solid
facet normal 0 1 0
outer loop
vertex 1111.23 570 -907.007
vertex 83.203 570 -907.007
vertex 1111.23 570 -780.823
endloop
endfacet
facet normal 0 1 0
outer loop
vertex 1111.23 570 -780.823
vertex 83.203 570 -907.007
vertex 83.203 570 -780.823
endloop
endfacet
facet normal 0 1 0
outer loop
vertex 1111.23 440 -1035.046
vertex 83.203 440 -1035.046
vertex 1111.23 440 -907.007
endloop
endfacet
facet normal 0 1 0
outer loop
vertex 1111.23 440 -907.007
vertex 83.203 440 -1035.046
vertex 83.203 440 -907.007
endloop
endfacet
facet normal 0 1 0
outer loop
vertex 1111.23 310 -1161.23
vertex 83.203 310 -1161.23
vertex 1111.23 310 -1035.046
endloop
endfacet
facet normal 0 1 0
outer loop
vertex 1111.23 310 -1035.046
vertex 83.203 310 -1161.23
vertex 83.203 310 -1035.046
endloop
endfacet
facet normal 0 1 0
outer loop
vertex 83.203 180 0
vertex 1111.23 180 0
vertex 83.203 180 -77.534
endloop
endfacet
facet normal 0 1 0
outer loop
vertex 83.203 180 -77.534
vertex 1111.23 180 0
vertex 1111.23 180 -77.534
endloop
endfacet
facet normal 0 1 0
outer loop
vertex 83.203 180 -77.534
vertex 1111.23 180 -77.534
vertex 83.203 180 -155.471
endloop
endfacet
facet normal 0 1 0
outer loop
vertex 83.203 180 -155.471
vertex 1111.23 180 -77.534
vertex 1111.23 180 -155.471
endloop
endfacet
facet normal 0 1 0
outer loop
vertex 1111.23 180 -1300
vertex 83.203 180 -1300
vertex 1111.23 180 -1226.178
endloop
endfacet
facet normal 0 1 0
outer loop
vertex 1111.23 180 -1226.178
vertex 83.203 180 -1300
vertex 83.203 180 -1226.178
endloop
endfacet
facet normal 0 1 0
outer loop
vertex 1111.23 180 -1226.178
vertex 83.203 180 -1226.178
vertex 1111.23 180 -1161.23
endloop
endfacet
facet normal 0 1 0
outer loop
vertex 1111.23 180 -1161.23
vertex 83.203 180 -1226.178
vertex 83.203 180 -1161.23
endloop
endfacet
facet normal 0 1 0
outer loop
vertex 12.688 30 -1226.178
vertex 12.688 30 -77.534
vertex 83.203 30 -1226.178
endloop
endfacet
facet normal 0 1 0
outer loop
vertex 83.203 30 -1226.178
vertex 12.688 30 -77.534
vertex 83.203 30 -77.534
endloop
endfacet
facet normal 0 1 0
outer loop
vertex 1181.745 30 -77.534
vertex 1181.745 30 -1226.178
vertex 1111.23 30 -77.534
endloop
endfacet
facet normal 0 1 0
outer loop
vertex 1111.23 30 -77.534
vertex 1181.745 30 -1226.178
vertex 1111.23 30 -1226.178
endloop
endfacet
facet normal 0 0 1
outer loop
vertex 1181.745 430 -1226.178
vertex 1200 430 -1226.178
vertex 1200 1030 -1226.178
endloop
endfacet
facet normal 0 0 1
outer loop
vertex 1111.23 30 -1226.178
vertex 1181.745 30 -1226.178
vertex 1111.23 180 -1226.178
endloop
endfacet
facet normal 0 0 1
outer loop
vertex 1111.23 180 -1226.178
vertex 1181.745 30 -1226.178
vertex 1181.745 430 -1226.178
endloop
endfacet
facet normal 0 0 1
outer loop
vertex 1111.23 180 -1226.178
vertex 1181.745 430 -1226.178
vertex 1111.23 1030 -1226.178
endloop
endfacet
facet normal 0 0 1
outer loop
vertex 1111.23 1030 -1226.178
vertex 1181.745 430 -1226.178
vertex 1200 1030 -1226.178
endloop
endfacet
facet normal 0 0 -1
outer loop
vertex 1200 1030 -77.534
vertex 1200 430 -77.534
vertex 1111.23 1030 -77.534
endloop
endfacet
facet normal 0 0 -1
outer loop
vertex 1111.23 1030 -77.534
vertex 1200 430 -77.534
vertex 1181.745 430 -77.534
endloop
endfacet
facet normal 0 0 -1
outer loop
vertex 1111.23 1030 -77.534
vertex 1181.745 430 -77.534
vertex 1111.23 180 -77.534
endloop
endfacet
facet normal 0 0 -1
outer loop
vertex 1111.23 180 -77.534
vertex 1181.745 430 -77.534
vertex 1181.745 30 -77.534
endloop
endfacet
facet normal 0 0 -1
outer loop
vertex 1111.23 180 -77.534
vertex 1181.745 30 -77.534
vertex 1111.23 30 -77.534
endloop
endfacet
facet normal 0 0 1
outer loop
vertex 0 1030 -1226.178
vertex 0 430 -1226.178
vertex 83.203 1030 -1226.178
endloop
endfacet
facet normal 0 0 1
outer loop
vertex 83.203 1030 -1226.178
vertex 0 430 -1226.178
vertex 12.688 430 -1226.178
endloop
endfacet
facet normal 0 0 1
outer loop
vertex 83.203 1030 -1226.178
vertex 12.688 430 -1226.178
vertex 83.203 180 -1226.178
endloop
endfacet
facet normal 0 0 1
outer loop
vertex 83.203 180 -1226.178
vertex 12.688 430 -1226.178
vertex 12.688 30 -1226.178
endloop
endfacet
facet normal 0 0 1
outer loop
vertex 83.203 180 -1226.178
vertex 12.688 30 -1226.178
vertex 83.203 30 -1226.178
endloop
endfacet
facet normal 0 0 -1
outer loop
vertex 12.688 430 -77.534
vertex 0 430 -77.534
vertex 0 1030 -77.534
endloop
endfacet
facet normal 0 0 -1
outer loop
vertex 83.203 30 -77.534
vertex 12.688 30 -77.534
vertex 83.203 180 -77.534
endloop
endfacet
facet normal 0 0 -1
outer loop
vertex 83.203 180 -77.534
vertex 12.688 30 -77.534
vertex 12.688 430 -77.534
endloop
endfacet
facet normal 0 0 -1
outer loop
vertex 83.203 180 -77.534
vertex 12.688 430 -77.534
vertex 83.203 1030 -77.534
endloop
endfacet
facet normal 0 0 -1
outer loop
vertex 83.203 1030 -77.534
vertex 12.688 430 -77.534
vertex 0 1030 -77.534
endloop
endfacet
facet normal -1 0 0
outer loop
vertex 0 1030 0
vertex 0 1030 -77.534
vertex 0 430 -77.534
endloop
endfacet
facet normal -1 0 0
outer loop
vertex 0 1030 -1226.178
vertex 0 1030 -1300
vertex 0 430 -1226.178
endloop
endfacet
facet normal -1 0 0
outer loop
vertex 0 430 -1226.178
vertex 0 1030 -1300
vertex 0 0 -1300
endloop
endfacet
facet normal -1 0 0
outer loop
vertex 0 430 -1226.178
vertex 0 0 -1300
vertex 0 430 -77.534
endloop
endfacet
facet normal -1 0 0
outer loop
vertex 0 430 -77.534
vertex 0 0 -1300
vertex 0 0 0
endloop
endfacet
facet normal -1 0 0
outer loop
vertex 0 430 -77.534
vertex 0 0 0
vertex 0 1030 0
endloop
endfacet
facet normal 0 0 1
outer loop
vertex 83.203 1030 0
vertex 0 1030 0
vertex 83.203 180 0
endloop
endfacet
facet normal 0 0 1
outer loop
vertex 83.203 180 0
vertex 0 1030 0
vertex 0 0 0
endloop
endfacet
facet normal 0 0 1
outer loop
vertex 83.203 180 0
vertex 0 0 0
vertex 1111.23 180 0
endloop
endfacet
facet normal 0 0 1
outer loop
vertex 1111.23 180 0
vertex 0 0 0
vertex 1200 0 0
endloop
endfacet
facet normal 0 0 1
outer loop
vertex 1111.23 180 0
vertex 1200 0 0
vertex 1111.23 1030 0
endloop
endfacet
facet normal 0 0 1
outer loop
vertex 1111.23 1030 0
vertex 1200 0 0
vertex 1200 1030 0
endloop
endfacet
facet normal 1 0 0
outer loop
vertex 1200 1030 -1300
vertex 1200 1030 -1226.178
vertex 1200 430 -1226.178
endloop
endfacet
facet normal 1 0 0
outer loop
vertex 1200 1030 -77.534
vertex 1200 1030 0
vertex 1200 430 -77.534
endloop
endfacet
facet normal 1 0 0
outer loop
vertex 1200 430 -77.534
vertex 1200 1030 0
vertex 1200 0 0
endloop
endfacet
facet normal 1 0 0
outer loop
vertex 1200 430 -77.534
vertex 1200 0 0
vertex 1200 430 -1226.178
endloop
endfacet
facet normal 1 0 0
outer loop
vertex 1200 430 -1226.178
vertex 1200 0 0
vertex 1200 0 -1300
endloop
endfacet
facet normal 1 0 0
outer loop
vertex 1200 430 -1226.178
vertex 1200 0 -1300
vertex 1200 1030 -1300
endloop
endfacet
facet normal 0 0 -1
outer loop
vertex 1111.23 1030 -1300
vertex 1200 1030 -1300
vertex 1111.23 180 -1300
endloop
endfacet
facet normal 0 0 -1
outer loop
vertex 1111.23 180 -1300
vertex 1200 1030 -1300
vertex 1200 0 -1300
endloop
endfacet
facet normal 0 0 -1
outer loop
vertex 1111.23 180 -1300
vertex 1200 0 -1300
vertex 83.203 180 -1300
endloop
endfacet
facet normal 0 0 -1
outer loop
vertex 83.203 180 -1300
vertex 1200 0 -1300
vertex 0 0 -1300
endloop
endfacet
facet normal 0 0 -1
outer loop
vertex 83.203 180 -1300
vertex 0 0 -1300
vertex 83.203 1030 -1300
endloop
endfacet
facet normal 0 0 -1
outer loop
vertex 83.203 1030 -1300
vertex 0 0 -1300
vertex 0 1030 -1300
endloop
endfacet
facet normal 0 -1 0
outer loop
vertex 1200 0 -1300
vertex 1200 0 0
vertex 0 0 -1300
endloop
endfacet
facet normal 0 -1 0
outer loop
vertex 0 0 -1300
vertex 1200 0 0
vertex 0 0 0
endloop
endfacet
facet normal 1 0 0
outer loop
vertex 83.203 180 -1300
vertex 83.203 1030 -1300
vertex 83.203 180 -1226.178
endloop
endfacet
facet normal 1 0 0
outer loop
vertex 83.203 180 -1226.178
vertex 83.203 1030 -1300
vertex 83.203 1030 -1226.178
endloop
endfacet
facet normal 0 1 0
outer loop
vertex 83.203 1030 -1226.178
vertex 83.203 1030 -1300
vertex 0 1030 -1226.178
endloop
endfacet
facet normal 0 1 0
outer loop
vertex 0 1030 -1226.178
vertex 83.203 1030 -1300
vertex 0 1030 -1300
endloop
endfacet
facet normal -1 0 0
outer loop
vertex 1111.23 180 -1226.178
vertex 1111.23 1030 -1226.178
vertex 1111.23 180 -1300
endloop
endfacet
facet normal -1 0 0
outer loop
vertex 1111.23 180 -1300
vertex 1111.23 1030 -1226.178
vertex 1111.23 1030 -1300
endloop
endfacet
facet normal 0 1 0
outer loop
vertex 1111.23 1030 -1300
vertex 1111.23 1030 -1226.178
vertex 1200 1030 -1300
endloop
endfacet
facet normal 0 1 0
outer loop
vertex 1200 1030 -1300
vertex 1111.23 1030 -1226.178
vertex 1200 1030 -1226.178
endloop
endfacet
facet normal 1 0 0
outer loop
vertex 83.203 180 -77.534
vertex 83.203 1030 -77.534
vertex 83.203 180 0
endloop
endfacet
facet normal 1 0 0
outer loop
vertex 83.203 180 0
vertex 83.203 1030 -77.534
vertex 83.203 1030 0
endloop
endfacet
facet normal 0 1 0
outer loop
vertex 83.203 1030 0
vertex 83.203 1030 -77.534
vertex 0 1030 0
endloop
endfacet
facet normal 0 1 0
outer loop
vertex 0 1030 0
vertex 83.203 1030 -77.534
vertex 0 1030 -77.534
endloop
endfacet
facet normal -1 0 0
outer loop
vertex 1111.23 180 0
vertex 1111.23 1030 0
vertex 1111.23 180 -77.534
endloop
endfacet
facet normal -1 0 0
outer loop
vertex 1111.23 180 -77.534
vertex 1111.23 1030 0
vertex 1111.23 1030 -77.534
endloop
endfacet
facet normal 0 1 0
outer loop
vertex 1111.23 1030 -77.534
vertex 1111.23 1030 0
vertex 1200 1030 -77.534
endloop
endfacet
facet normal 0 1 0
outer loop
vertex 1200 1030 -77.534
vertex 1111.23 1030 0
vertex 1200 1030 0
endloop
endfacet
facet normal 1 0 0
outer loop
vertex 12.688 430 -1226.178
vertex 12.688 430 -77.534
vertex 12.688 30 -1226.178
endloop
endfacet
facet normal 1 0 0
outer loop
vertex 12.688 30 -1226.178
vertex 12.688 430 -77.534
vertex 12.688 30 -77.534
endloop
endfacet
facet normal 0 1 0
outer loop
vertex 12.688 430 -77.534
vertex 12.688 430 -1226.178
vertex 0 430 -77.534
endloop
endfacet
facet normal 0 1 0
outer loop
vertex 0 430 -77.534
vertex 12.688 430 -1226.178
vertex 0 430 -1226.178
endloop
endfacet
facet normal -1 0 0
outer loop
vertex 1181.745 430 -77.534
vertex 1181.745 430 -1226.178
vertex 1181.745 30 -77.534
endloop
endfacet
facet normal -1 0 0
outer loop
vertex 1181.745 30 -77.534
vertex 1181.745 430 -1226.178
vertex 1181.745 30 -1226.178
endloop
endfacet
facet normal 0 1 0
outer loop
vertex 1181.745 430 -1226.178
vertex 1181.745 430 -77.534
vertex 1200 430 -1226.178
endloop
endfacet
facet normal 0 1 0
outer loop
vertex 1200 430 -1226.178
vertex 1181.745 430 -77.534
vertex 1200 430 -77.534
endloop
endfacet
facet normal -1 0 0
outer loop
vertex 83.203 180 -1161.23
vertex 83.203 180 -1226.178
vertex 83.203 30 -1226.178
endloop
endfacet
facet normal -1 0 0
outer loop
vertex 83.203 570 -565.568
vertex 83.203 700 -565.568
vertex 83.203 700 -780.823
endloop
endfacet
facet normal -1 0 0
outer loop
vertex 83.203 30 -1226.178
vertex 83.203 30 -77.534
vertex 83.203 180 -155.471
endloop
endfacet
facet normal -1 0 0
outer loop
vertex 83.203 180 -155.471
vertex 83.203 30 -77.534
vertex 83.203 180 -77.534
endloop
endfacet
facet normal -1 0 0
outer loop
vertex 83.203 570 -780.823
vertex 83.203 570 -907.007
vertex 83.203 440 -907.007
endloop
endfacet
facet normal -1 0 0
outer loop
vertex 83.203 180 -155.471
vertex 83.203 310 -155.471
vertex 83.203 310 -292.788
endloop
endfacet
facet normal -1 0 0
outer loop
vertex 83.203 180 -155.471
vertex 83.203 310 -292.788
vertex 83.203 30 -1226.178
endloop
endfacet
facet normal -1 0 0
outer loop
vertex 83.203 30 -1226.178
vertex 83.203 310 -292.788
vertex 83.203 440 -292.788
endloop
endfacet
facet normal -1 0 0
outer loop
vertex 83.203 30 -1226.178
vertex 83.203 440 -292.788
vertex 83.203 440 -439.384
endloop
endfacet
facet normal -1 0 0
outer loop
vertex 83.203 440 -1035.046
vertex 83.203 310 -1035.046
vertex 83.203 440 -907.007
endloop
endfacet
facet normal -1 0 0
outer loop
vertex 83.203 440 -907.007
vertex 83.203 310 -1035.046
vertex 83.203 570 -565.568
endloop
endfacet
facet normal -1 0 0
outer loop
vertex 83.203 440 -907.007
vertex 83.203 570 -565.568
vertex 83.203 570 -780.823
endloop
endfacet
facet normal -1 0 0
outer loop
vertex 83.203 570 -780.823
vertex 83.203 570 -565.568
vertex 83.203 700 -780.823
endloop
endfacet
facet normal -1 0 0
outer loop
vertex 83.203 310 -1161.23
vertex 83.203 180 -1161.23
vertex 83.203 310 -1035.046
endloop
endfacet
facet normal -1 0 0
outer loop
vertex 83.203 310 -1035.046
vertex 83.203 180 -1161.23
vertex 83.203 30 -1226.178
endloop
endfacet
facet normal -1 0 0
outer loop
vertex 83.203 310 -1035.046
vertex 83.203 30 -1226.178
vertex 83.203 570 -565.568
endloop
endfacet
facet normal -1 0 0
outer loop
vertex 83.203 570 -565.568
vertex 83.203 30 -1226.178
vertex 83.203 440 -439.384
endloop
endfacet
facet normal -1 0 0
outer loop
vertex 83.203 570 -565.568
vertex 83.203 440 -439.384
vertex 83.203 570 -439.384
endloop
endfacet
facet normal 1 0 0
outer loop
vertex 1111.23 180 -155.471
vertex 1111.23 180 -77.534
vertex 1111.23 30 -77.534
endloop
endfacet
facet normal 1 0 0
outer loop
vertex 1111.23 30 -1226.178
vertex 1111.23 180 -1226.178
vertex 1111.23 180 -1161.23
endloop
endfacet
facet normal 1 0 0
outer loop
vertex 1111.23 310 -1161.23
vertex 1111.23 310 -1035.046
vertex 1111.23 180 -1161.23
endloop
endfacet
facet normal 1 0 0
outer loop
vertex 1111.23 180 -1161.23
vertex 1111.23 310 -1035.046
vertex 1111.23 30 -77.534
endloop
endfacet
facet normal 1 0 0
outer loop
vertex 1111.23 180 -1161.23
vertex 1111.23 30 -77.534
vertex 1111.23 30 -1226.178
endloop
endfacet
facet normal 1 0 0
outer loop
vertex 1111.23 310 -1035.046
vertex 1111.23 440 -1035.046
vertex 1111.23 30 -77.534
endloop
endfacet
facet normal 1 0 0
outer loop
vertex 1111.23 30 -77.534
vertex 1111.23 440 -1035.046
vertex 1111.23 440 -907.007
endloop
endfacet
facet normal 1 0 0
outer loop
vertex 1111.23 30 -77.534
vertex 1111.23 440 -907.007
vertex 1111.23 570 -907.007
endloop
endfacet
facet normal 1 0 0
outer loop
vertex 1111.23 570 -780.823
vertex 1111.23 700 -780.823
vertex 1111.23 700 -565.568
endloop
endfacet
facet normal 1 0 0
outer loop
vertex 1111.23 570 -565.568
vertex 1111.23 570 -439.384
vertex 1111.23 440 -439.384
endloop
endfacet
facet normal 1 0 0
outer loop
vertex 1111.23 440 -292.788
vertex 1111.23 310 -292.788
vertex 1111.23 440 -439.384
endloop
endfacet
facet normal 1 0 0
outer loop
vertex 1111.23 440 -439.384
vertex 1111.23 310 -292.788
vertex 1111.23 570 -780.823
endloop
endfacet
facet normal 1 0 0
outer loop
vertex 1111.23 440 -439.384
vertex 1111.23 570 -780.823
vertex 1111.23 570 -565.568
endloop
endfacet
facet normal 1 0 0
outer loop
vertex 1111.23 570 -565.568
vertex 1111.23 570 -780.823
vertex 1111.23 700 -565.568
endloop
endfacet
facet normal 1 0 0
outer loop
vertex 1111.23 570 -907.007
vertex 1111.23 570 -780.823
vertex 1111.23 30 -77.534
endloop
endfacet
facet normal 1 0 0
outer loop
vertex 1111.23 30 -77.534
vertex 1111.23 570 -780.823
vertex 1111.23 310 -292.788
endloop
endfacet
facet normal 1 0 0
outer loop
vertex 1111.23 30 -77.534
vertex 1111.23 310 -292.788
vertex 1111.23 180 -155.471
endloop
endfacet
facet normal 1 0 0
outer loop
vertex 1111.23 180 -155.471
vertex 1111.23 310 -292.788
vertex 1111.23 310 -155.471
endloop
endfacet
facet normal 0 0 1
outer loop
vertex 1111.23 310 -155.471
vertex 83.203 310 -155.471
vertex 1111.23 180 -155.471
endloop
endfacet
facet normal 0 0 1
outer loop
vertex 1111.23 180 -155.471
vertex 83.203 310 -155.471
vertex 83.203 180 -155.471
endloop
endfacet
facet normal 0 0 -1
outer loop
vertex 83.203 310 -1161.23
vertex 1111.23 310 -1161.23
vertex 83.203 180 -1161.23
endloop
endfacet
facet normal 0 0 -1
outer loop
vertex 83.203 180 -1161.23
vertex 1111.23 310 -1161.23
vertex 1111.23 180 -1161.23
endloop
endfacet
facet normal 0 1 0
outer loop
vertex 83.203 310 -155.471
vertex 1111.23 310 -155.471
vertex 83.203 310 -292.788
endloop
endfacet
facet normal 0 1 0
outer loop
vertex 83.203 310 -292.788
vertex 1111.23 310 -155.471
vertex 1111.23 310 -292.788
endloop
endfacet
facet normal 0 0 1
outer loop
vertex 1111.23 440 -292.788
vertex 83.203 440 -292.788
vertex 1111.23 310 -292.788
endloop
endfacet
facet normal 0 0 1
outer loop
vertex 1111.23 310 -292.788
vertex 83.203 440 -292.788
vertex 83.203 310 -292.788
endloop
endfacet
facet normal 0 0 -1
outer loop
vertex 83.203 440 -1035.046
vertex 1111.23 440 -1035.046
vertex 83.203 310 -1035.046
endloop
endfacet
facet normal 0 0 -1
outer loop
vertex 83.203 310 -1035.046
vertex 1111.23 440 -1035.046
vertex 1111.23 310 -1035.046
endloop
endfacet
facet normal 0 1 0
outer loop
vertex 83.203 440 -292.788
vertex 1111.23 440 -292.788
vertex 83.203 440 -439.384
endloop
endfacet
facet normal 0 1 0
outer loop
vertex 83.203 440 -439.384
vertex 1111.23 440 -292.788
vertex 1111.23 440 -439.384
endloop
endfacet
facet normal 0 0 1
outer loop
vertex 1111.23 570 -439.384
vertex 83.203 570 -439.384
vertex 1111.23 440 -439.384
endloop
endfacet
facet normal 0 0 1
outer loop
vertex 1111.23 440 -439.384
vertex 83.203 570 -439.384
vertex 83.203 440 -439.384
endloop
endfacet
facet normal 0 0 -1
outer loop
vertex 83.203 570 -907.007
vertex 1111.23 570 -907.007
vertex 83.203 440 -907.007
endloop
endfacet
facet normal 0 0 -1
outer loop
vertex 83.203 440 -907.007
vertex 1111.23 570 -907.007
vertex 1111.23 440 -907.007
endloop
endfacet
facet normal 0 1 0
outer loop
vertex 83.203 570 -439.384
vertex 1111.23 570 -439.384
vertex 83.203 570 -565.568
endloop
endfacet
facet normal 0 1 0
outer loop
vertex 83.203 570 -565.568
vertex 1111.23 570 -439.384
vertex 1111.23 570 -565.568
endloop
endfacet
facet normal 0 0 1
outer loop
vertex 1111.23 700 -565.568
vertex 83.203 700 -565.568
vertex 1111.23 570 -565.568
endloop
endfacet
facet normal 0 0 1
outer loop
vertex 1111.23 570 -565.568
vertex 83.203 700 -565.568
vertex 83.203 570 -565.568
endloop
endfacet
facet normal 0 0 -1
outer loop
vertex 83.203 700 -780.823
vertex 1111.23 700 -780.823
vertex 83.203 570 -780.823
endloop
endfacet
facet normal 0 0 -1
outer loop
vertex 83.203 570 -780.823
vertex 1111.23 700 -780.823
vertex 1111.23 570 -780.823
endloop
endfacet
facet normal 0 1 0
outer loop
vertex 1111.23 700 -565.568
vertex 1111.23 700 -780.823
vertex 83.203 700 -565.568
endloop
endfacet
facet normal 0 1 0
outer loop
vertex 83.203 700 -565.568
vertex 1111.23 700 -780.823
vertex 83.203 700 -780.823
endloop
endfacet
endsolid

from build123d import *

# Parameters (mm, degrees)
CROQUIS1_W              = 1200
CROQUIS1_H              = 1300
SALIENTE_EXTRUIR1_DEPTH = 30
CROQUIS2_W              = 83.202896363
CROQUIS2_H              = 73.82225968
CROQUIS2_W_2            = 88.769831052
CROQUIS2_H_2            = 77.533549472
SALIENTE_EXTRUIR2_DEPTH = 1000
CROQUIS3_W              = 12.688390301
CROQUIS3_H              = 1148.644190848
CROQUIS3_W_2            = 18.255324991
SALIENTE_EXTRUIR3_DEPTH = 400
CROQUIS4_W              = 1028.027272585
CROQUIS4_H              = 1300
SALIENTE_EXTRUIR4_DEPTH = 150
CROQUIS5_W              = 1028.027272585
CROQUIS5_H              = 1005.759533828
SALIENTE_EXTRUIR5_DEPTH = 130
CROQUIS6_W              = 1028.027272585
CROQUIS6_H              = 742.257958545
SALIENTE_EXTRUIR6_DEPTH = 130
CROQUIS7_W              = 1028.027272585
CROQUIS7_H              = 467.622513883
SALIENTE_EXTRUIR7_DEPTH = 130
CROQUIS8_W              = 1028.027272585
CROQUIS8_H              = 215.254807978
SALIENTE_EXTRUIR8_DEPTH = 130


with BuildPart() as part:
    # Croquis1 → Saliente-Extruir1 (new body)
    with BuildSketch(Plane(origin=(0, 0, 0), x_dir=(1, 0, 0), z_dir=(0, 1, 0))):
        with Locations((600, 650)):
            Rectangle(CROQUIS1_W, CROQUIS1_H)
    extrude(amount=SALIENTE_EXTRUIR1_DEPTH)

    # Croquis2 → Saliente-Extruir2 (add)
    with BuildSketch(Plane(origin=(0, 30, 0), x_dir=(1, 0, 0), z_dir=(0, 1, 0))):
        with Locations((41.601448182, 1263.08887016)):
            Rectangle(CROQUIS2_W, CROQUIS2_H)
        with Locations((1155.615084474, 1263.08887016)):
            Rectangle(CROQUIS2_W_2, CROQUIS2_H)
        with Locations((41.601448182, 38.766774736)):
            Rectangle(CROQUIS2_W, CROQUIS2_H_2)
        with Locations((1155.615084474, 38.766774736)):
            Rectangle(CROQUIS2_W_2, CROQUIS2_H_2)
    extrude(amount=SALIENTE_EXTRUIR2_DEPTH)

    # Croquis3 → Saliente-Extruir3 (add)
    with BuildSketch(Plane(origin=(0, 30, 0), x_dir=(1, 0, 0), z_dir=(0, 1, 0))):
        with Locations((6.344195151, 651.855644896)):
            Rectangle(CROQUIS3_W, CROQUIS3_H)
        with Locations((1190.872337505, 651.855644896)):
            Rectangle(CROQUIS3_W_2, CROQUIS3_H)
    extrude(amount=SALIENTE_EXTRUIR3_DEPTH)

    # Croquis4 → Saliente-Extruir4 (add)
    with BuildSketch(Plane(origin=(0, 30, 0), x_dir=(1, 0, 0), z_dir=(0, 1, 0))):
        with Locations((597.216532656, 650)):
            Rectangle(CROQUIS4_W, CROQUIS4_H)
    extrude(amount=SALIENTE_EXTRUIR4_DEPTH)

    # Croquis5 → Saliente-Extruir5 (add)
    with BuildSketch(Plane(origin=(0, 180, 0), x_dir=(1, 0, 0), z_dir=(0, 1, 0))):
        with Locations((597.216532656, 658.350402034)):
            Rectangle(CROQUIS5_W, CROQUIS5_H)
    extrude(amount=SALIENTE_EXTRUIR5_DEPTH)

    # Croquis6 → Saliente-Extruir6 (add)
    with BuildSketch(Plane(origin=(0, 310, 0), x_dir=(1, 0, 0), z_dir=(0, 1, 0))):
        with Locations((597.216532656, 663.917336723)):
            Rectangle(CROQUIS6_W, CROQUIS6_H)
    extrude(amount=SALIENTE_EXTRUIR6_DEPTH)

    # Croquis7 → Saliente-Extruir7 (add)
    with BuildSketch(Plane(origin=(0, 440, 0), x_dir=(1, 0, 0), z_dir=(0, 1, 0))):
        with Locations((597.216532656, 673.195561204)):
            Rectangle(CROQUIS7_W, CROQUIS7_H)
    extrude(amount=SALIENTE_EXTRUIR7_DEPTH)

    # Croquis8 → Saliente-Extruir8 (add)
    with BuildSketch(Plane(origin=(0, 570, 0), x_dir=(1, 0, 0), z_dir=(0, 1, 0))):
        with Locations((597.216532656, 673.195561205)):
            Rectangle(CROQUIS8_W, CROQUIS8_H)
    extrude(amount=SALIENTE_EXTRUIR8_DEPTH)


solid = part.part
